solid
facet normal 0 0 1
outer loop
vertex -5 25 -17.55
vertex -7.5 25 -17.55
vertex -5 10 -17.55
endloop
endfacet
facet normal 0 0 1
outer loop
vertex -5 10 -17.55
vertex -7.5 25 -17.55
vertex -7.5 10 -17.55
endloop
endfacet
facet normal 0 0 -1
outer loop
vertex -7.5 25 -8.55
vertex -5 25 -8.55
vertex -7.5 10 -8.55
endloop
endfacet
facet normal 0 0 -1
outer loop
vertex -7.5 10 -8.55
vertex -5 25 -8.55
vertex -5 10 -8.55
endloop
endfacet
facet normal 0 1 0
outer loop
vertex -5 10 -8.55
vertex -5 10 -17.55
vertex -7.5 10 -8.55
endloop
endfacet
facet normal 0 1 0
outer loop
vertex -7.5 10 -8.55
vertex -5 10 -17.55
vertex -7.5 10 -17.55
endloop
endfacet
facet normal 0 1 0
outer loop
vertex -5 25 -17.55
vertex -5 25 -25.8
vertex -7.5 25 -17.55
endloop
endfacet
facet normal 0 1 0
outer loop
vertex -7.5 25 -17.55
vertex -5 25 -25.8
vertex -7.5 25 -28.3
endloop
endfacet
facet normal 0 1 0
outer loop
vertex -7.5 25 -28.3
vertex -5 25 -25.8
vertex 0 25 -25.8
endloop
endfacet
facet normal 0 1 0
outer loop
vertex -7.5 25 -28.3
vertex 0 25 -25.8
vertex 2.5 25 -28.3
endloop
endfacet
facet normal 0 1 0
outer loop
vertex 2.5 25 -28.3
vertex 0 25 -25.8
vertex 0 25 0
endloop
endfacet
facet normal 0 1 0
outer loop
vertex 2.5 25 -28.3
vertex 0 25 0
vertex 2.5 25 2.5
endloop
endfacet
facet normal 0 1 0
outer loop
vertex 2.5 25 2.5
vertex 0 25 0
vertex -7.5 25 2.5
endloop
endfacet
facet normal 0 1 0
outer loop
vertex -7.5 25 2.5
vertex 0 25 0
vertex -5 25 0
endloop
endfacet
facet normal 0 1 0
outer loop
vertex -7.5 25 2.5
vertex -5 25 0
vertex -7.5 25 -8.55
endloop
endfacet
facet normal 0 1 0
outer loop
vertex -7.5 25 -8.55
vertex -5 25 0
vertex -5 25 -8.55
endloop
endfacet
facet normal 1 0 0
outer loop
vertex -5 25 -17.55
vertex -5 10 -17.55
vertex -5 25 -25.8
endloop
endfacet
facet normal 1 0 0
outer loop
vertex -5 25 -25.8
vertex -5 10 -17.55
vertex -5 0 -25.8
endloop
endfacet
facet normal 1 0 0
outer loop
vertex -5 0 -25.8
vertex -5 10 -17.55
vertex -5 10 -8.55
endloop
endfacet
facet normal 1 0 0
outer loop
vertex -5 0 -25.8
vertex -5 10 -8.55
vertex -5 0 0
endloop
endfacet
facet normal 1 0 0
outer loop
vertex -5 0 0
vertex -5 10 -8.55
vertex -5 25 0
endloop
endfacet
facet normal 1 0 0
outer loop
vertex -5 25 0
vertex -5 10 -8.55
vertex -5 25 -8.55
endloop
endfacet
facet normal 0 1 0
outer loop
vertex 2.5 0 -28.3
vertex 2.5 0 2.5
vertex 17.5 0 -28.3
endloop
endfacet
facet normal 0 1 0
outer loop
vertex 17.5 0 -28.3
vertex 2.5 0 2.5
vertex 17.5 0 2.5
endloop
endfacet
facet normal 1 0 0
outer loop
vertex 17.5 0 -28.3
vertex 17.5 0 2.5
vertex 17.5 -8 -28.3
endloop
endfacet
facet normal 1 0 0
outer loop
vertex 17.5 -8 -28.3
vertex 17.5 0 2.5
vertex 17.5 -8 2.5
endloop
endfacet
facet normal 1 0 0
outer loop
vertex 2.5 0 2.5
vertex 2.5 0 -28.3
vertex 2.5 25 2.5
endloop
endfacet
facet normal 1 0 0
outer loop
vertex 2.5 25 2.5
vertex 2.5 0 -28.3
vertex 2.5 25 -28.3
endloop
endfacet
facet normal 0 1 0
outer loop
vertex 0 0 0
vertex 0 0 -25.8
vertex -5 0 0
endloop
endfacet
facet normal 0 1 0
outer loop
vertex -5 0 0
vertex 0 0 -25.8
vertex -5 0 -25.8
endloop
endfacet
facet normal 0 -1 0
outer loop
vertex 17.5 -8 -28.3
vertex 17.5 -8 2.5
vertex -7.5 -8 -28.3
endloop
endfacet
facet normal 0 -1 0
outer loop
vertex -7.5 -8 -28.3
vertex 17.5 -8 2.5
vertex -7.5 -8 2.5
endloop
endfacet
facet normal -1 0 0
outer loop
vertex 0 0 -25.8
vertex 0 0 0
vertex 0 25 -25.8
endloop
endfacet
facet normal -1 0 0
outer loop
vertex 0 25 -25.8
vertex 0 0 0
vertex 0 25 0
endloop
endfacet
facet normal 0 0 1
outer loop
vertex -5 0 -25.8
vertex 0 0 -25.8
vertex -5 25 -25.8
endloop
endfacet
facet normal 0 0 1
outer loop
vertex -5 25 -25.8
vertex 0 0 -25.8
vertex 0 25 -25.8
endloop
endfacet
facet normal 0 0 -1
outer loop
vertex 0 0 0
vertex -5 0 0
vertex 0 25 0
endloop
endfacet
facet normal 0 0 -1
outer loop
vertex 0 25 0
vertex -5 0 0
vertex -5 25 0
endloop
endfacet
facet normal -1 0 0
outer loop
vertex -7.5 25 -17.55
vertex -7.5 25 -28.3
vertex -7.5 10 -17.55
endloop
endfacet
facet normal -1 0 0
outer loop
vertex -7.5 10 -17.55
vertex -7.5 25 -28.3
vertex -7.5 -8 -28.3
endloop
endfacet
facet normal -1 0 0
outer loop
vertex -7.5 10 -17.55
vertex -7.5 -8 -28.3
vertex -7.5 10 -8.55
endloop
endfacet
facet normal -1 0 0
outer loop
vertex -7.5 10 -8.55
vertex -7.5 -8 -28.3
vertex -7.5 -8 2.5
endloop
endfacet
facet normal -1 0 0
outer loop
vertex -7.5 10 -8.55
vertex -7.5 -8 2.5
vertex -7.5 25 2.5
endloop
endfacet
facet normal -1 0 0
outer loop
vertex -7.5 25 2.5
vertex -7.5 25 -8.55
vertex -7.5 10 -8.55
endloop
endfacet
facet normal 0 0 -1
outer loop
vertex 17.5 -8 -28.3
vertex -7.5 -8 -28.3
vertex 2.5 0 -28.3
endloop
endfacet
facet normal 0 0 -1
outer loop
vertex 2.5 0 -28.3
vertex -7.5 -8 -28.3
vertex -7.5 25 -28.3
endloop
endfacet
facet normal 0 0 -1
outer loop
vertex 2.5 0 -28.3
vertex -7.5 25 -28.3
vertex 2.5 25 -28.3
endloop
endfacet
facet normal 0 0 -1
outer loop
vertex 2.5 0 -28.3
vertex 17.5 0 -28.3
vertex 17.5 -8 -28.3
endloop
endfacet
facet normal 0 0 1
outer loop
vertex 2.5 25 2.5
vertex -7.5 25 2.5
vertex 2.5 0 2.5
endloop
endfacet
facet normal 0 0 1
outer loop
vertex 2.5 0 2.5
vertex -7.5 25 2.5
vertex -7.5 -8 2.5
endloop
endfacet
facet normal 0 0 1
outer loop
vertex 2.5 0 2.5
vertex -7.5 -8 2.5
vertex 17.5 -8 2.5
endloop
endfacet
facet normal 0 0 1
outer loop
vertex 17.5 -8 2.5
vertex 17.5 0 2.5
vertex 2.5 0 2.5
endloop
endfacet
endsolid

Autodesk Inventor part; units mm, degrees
ref_plane "YZ Plane" through (0, 0, 0) normal (1, 0, 0) x (0, 1, 0)
ref_plane "XZ Plane" through (0, 0, 0) normal (0, 1, 0) x (-1, 0, 0)
ref_plane "XY Plane" through (0, 0, 0) normal (0, 0, 1) x (1, 0, 0)
sketch "Sketch1" plane through (0, 0, 0) normal (0, 1, 0) x (-1, 0, 0)
  line L0 (0, 0) -> (5, 0)
  line L1 (5, 0) -> (5, -25.8)
  line L2 (5, -25.8) -> (0, -25.8)
  line L3 (0, -25.8) -> (0, 0)
  line L4 (7.5, -28.3) -> (7.5, 2.5)
  line L5 (7.5, 2.5) -> (-2.5, 2.5)
  line L6 (-2.5, 2.5) -> (-2.5, -28.3)
  line L7 (-2.5, -28.3) -> (7.5, -28.3)
  dimension "d0" = 5
  dimension "d1" = 25.8
  dimension "d2" = 2.5
extrude "Extrusion1" add sketch "Sketch1" along normal blind 25
sketch "Sketch2" plane through (0, 0, 0) normal (0, -1, 0) x (1, 0, 0)
  line L0 (2.5, -28.3) -> (-7.5, -28.3) projected
  line L1 (-7.5, 2.5) -> (2.5, 2.5) projected
  line L2 (2.5, -28.3) -> (-7.5, -28.3)
  line L3 (-7.5, -28.3) -> (-7.5, 2.5)
  line L4 (-7.5, 2.5) -> (2.5, 2.5)
  line L5 (2.5, 2.5) -> (2.5, -28.3)
  point P0 (0, 0)
  point P1 (2.5, 2.5)
extrude "Extrusion2" add sketch "Sketch2" along normal blind 8
sketch "Sketch3" plane through (2.5, 25, 2.5) normal (1, 0, 0) x (0, 0, -1)
  line L0 (30.8, -33) -> (0, -33) projected
  line L1 (0, -33) -> (0, 0) projected
  line L2 (30.8, -33) -> (0, -33)
  line L3 (0, -33) -> (0, -25)
  line L4 (0, -25) -> (30.8, -25)
  line L5 (30.8, -25) -> (30.8, -33)
  point P0 (2.5, -25)
  dimension "d7" = 8
extrude "Extrusion3" add sketch "Sketch3" along normal blind 15
sketch "Sketch4" plane through (0, 25, 0) normal (0, 1, 0) x (1, 0, 0)
  line L0 (-5, 0) -> (-5, 25.8) projected
  line L1 (-7.5, -2.5) -> (-7.5, 28.3) projected
  line L2 (-5, 17.55) -> (-7.5, 17.55)
  line L3 (-7.5, 17.55) -> (-7.5, 8.55)
  line L4 (-7.5, 8.55) -> (-5, 8.55)
  line L5 (-5, 8.55) -> (-5, 17.55)
  line L6 (2.5, 28.3) -> (-7.5, 28.3) projected
  point P0 (0, 0)
  point P1 (-5, 8.55)
  point P2 (-7.5, 17.55)
  dimension "d10" = 9
  dimension "d11" = 10.75
extrude "Extrusion4" cut sketch "Sketch4" against normal blind 15
properties part number "base camera"
